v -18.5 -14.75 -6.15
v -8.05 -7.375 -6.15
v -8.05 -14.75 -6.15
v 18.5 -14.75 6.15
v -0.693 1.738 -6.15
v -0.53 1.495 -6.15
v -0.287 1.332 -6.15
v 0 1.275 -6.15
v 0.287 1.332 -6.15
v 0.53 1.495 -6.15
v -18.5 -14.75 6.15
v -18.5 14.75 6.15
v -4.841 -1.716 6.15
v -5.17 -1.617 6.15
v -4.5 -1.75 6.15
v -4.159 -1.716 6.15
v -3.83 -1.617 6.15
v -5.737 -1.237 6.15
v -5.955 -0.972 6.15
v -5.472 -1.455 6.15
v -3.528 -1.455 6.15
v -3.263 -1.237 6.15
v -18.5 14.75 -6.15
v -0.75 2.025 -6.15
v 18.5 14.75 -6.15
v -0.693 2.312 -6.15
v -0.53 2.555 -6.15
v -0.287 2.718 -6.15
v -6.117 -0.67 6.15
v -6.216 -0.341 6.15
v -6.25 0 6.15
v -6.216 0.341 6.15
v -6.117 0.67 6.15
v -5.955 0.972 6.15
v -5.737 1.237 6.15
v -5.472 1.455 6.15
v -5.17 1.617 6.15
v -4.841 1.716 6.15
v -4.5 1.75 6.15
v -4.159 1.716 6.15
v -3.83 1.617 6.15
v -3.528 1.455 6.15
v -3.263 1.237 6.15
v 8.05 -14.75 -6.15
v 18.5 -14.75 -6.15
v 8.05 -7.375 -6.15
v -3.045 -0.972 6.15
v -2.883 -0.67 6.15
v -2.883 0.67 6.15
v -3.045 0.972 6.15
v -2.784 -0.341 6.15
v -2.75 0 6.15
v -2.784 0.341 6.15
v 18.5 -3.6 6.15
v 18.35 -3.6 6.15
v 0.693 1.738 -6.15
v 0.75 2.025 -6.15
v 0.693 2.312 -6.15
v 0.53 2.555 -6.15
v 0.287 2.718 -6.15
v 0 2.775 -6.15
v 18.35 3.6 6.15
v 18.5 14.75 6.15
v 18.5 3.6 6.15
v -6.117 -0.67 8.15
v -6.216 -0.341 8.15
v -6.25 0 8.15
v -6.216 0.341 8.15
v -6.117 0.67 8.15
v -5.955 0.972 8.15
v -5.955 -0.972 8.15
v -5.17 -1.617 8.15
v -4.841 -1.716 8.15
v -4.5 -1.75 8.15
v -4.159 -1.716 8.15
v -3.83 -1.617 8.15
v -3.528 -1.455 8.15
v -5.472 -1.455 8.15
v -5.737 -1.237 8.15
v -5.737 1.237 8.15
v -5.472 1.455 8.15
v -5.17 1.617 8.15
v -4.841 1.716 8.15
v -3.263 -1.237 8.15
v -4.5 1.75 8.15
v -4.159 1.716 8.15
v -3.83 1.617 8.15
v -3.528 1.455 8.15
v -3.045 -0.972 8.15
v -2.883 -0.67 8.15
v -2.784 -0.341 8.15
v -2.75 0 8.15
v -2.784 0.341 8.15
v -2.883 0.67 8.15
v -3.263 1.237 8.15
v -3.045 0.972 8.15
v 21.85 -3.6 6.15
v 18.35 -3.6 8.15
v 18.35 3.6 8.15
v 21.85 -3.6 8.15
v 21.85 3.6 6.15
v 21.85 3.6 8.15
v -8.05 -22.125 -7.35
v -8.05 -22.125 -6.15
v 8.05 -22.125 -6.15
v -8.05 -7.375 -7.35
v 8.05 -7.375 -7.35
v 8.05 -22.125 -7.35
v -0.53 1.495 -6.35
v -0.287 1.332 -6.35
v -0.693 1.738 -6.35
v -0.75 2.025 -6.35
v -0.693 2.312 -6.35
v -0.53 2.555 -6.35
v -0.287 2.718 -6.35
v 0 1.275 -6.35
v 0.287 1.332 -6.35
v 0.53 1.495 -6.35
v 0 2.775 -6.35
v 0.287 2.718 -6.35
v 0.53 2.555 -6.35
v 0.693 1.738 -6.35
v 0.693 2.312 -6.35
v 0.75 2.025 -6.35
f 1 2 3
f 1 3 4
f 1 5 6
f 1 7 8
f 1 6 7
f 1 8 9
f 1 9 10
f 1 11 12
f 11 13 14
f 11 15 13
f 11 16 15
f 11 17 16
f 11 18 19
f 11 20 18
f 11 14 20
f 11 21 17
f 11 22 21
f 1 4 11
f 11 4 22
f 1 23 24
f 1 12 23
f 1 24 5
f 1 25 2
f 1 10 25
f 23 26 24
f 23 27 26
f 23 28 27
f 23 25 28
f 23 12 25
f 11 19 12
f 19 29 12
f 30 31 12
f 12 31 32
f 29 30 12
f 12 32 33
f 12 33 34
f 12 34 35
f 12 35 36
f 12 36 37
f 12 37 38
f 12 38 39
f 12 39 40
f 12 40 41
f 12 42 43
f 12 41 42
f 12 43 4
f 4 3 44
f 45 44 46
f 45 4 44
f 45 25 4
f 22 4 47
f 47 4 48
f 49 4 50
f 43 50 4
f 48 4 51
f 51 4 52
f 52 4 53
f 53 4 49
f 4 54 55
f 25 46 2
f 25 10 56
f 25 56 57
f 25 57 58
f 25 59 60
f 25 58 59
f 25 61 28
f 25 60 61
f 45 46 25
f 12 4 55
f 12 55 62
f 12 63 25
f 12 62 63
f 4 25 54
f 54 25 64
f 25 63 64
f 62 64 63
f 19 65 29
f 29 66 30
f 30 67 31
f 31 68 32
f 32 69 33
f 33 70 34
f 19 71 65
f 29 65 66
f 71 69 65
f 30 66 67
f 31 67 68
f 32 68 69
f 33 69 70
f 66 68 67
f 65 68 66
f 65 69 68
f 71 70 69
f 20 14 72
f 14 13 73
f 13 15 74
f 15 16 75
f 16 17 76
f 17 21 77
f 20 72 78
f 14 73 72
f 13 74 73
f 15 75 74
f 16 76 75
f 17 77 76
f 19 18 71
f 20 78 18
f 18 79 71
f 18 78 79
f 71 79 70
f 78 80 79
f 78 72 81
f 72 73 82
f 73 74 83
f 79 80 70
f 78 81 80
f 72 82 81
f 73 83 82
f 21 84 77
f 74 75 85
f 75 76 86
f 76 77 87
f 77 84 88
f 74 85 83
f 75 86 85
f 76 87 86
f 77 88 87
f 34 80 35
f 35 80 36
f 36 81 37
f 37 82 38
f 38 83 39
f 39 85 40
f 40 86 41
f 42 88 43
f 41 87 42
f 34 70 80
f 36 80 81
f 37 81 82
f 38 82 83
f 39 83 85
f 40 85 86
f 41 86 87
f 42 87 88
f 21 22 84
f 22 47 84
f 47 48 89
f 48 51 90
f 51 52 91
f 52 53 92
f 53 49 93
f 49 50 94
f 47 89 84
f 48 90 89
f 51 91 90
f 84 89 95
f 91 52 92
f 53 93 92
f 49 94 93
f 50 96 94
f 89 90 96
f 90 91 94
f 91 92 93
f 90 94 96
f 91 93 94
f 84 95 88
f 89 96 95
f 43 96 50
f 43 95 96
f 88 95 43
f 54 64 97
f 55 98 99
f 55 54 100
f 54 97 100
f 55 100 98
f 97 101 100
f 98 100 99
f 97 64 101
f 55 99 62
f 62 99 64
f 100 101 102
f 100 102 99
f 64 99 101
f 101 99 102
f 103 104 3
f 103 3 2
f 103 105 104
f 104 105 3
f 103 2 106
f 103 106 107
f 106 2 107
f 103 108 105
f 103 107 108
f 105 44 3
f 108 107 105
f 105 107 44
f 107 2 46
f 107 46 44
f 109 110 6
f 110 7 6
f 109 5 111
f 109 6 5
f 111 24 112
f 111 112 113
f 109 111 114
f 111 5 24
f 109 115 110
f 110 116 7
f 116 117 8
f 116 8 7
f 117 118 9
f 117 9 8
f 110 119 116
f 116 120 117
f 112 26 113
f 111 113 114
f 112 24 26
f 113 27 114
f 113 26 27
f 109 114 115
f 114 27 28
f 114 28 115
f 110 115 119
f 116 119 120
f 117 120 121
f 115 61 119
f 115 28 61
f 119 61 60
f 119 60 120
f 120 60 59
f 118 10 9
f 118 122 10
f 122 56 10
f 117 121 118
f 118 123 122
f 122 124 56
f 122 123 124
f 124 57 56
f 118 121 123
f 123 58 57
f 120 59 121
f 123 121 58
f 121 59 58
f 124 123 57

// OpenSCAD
// Sharp GP2Y0A21YK0F Distance Sensor - OpenSCAD Model

// Parameters
$fn = 32;

// Main body dimensions
body_length = 37;      // Total length of main body
body_width = 29.5;     // Total width of main body
body_height = 12.3;    // Height of main body

// Lens positions (from datasheet)
lens_emitter_x = -4.5;   // Light emitter X position (reference)
lens_detector_x = 20 + 0.1; // Light detector X position (reference)
lens_y = 0;            // Lens Y position (center)

// Lens dimensions
lens_emitter_diameter = 3.5;  // Emitter lens diameter
lens_detector_width = 3.5;    // Detector lens width
lens_detector_height = 7.2;   // Detector lens height
lens_protrusion = 2.0; // How much lenses protrude above body

// Connection bar dimensions
bar_length = 16.1;     // Length of connection bar
bar_width = 14.75;     // Width of connection bar
bar_height = 1.2;      // Thickness of connection bar
bar_y_offset = -14.75 / 2; // Starting Y position of bar from body

// Mounting holes
hole_diameter = 1.2;
hole_left_x = -7.5 / 2;
hole_right_x = 7.5 / 2;
hole_y = -4.15;  // Y position on the bar

// Cable cutout
cable_cutout_width = 4.15;
cable_cutout_height = 3.1;
cable_cutout_y = -9.4; // Approximate position on bar

// Cable representation
cable_diameter = 1.5;
cable_length = 10;
cable_z_position = -bar_height / 2 - cable_diameter / 2;

// Main body with lens protrusions
module main_body() {
    // Base rectangular body
    translate([0, 0, 0])
        cube([body_length, body_width, body_height], center = true);
    
    // Emitter lens protrusion (circular)
    translate([lens_emitter_x, lens_y, body_height / 2 + lens_protrusion / 2])
        cylinder(h = lens_protrusion, r = lens_emitter_diameter / 2, center = true);
    
    // Detector lens protrusion (rectangular)
    translate([lens_detector_x, lens_y, body_height / 2 + lens_protrusion / 2])
        cube([lens_detector_width, lens_detector_height, lens_protrusion], center = true);
}

// Lens windows on top surface
module lens_windows() {
    // Emitter window (circular)
    translate([lens_emitter_x, lens_y, body_height / 2 + 0.1])
        cylinder(h = 0.5, r = lens_emitter_diameter / 2 - 0.2, center = true, $fn = 16);
    
    // Detector window (rectangular)
    translate([lens_detector_x, lens_y, body_height / 2 + 0.1])
        cube([lens_detector_width - 0.4, lens_detector_height - 0.4, 0.5], center = true);
}

// Connection bar with features
module connection_bar() {
    difference() {
        // Base bar
        translate([0, bar_y_offset - bar_width / 2, -body_height / 2 - bar_height / 2])
            cube([bar_length, bar_width, bar_height], center = true);
        
        // Left mounting hole
        translate([hole_left_x, bar_y_offset - hole_y, -body_height / 2 - bar_height / 2])
            cylinder(h = bar_height + 1, r = hole_diameter / 2, center = true, $fn = 16);
        
        // Right mounting hole
        translate([hole_right_x, bar_y_offset - hole_y, -body_height / 2 - bar_height / 2])
            cylinder(h = bar_height + 1, r = hole_diameter / 2, center = true, $fn = 16);
        
        // Cable cutout
        translate([0, bar_y_offset - cable_cutout_y, -body_height / 2 - bar_height / 2])
            cube([cable_cutout_width, cable_cutout_height, bar_height + 1], center = true);
    }
}

// Cable representation (simplified as cylinder)
module cable() {
    translate([0, bar_y_offset - cable_cutout_y, cable_z_position])
        cylinder(h = cable_length, r = cable_diameter / 2, center = true, $fn = 16);
}

// Complete sensor assembly
module gp2y0a21yk0f() {
    // Main body
    main_body();
    
    // Connection bar with holes and cutout
    connection_bar();
    
    // Cable
    cable();
}

// Render the sensor
gp2y0a21yk0f();

// Optional: Add reference planes/axes for debugging
// (uncomment to visualize coordinate system)
/*
%cube([0.5, 0.5, 0.5], center = true); // Origin marker
translate([5, 0, 0]) %cube([10, 0.5, 0.5], center = true); // X axis
translate([0, 5, 0]) %cube([0.5, 10, 0.5], center = true); // Y axis
translate([0, 0, 5]) %cube([0.5, 0.5, 10], center = true); // Z axis
*/
